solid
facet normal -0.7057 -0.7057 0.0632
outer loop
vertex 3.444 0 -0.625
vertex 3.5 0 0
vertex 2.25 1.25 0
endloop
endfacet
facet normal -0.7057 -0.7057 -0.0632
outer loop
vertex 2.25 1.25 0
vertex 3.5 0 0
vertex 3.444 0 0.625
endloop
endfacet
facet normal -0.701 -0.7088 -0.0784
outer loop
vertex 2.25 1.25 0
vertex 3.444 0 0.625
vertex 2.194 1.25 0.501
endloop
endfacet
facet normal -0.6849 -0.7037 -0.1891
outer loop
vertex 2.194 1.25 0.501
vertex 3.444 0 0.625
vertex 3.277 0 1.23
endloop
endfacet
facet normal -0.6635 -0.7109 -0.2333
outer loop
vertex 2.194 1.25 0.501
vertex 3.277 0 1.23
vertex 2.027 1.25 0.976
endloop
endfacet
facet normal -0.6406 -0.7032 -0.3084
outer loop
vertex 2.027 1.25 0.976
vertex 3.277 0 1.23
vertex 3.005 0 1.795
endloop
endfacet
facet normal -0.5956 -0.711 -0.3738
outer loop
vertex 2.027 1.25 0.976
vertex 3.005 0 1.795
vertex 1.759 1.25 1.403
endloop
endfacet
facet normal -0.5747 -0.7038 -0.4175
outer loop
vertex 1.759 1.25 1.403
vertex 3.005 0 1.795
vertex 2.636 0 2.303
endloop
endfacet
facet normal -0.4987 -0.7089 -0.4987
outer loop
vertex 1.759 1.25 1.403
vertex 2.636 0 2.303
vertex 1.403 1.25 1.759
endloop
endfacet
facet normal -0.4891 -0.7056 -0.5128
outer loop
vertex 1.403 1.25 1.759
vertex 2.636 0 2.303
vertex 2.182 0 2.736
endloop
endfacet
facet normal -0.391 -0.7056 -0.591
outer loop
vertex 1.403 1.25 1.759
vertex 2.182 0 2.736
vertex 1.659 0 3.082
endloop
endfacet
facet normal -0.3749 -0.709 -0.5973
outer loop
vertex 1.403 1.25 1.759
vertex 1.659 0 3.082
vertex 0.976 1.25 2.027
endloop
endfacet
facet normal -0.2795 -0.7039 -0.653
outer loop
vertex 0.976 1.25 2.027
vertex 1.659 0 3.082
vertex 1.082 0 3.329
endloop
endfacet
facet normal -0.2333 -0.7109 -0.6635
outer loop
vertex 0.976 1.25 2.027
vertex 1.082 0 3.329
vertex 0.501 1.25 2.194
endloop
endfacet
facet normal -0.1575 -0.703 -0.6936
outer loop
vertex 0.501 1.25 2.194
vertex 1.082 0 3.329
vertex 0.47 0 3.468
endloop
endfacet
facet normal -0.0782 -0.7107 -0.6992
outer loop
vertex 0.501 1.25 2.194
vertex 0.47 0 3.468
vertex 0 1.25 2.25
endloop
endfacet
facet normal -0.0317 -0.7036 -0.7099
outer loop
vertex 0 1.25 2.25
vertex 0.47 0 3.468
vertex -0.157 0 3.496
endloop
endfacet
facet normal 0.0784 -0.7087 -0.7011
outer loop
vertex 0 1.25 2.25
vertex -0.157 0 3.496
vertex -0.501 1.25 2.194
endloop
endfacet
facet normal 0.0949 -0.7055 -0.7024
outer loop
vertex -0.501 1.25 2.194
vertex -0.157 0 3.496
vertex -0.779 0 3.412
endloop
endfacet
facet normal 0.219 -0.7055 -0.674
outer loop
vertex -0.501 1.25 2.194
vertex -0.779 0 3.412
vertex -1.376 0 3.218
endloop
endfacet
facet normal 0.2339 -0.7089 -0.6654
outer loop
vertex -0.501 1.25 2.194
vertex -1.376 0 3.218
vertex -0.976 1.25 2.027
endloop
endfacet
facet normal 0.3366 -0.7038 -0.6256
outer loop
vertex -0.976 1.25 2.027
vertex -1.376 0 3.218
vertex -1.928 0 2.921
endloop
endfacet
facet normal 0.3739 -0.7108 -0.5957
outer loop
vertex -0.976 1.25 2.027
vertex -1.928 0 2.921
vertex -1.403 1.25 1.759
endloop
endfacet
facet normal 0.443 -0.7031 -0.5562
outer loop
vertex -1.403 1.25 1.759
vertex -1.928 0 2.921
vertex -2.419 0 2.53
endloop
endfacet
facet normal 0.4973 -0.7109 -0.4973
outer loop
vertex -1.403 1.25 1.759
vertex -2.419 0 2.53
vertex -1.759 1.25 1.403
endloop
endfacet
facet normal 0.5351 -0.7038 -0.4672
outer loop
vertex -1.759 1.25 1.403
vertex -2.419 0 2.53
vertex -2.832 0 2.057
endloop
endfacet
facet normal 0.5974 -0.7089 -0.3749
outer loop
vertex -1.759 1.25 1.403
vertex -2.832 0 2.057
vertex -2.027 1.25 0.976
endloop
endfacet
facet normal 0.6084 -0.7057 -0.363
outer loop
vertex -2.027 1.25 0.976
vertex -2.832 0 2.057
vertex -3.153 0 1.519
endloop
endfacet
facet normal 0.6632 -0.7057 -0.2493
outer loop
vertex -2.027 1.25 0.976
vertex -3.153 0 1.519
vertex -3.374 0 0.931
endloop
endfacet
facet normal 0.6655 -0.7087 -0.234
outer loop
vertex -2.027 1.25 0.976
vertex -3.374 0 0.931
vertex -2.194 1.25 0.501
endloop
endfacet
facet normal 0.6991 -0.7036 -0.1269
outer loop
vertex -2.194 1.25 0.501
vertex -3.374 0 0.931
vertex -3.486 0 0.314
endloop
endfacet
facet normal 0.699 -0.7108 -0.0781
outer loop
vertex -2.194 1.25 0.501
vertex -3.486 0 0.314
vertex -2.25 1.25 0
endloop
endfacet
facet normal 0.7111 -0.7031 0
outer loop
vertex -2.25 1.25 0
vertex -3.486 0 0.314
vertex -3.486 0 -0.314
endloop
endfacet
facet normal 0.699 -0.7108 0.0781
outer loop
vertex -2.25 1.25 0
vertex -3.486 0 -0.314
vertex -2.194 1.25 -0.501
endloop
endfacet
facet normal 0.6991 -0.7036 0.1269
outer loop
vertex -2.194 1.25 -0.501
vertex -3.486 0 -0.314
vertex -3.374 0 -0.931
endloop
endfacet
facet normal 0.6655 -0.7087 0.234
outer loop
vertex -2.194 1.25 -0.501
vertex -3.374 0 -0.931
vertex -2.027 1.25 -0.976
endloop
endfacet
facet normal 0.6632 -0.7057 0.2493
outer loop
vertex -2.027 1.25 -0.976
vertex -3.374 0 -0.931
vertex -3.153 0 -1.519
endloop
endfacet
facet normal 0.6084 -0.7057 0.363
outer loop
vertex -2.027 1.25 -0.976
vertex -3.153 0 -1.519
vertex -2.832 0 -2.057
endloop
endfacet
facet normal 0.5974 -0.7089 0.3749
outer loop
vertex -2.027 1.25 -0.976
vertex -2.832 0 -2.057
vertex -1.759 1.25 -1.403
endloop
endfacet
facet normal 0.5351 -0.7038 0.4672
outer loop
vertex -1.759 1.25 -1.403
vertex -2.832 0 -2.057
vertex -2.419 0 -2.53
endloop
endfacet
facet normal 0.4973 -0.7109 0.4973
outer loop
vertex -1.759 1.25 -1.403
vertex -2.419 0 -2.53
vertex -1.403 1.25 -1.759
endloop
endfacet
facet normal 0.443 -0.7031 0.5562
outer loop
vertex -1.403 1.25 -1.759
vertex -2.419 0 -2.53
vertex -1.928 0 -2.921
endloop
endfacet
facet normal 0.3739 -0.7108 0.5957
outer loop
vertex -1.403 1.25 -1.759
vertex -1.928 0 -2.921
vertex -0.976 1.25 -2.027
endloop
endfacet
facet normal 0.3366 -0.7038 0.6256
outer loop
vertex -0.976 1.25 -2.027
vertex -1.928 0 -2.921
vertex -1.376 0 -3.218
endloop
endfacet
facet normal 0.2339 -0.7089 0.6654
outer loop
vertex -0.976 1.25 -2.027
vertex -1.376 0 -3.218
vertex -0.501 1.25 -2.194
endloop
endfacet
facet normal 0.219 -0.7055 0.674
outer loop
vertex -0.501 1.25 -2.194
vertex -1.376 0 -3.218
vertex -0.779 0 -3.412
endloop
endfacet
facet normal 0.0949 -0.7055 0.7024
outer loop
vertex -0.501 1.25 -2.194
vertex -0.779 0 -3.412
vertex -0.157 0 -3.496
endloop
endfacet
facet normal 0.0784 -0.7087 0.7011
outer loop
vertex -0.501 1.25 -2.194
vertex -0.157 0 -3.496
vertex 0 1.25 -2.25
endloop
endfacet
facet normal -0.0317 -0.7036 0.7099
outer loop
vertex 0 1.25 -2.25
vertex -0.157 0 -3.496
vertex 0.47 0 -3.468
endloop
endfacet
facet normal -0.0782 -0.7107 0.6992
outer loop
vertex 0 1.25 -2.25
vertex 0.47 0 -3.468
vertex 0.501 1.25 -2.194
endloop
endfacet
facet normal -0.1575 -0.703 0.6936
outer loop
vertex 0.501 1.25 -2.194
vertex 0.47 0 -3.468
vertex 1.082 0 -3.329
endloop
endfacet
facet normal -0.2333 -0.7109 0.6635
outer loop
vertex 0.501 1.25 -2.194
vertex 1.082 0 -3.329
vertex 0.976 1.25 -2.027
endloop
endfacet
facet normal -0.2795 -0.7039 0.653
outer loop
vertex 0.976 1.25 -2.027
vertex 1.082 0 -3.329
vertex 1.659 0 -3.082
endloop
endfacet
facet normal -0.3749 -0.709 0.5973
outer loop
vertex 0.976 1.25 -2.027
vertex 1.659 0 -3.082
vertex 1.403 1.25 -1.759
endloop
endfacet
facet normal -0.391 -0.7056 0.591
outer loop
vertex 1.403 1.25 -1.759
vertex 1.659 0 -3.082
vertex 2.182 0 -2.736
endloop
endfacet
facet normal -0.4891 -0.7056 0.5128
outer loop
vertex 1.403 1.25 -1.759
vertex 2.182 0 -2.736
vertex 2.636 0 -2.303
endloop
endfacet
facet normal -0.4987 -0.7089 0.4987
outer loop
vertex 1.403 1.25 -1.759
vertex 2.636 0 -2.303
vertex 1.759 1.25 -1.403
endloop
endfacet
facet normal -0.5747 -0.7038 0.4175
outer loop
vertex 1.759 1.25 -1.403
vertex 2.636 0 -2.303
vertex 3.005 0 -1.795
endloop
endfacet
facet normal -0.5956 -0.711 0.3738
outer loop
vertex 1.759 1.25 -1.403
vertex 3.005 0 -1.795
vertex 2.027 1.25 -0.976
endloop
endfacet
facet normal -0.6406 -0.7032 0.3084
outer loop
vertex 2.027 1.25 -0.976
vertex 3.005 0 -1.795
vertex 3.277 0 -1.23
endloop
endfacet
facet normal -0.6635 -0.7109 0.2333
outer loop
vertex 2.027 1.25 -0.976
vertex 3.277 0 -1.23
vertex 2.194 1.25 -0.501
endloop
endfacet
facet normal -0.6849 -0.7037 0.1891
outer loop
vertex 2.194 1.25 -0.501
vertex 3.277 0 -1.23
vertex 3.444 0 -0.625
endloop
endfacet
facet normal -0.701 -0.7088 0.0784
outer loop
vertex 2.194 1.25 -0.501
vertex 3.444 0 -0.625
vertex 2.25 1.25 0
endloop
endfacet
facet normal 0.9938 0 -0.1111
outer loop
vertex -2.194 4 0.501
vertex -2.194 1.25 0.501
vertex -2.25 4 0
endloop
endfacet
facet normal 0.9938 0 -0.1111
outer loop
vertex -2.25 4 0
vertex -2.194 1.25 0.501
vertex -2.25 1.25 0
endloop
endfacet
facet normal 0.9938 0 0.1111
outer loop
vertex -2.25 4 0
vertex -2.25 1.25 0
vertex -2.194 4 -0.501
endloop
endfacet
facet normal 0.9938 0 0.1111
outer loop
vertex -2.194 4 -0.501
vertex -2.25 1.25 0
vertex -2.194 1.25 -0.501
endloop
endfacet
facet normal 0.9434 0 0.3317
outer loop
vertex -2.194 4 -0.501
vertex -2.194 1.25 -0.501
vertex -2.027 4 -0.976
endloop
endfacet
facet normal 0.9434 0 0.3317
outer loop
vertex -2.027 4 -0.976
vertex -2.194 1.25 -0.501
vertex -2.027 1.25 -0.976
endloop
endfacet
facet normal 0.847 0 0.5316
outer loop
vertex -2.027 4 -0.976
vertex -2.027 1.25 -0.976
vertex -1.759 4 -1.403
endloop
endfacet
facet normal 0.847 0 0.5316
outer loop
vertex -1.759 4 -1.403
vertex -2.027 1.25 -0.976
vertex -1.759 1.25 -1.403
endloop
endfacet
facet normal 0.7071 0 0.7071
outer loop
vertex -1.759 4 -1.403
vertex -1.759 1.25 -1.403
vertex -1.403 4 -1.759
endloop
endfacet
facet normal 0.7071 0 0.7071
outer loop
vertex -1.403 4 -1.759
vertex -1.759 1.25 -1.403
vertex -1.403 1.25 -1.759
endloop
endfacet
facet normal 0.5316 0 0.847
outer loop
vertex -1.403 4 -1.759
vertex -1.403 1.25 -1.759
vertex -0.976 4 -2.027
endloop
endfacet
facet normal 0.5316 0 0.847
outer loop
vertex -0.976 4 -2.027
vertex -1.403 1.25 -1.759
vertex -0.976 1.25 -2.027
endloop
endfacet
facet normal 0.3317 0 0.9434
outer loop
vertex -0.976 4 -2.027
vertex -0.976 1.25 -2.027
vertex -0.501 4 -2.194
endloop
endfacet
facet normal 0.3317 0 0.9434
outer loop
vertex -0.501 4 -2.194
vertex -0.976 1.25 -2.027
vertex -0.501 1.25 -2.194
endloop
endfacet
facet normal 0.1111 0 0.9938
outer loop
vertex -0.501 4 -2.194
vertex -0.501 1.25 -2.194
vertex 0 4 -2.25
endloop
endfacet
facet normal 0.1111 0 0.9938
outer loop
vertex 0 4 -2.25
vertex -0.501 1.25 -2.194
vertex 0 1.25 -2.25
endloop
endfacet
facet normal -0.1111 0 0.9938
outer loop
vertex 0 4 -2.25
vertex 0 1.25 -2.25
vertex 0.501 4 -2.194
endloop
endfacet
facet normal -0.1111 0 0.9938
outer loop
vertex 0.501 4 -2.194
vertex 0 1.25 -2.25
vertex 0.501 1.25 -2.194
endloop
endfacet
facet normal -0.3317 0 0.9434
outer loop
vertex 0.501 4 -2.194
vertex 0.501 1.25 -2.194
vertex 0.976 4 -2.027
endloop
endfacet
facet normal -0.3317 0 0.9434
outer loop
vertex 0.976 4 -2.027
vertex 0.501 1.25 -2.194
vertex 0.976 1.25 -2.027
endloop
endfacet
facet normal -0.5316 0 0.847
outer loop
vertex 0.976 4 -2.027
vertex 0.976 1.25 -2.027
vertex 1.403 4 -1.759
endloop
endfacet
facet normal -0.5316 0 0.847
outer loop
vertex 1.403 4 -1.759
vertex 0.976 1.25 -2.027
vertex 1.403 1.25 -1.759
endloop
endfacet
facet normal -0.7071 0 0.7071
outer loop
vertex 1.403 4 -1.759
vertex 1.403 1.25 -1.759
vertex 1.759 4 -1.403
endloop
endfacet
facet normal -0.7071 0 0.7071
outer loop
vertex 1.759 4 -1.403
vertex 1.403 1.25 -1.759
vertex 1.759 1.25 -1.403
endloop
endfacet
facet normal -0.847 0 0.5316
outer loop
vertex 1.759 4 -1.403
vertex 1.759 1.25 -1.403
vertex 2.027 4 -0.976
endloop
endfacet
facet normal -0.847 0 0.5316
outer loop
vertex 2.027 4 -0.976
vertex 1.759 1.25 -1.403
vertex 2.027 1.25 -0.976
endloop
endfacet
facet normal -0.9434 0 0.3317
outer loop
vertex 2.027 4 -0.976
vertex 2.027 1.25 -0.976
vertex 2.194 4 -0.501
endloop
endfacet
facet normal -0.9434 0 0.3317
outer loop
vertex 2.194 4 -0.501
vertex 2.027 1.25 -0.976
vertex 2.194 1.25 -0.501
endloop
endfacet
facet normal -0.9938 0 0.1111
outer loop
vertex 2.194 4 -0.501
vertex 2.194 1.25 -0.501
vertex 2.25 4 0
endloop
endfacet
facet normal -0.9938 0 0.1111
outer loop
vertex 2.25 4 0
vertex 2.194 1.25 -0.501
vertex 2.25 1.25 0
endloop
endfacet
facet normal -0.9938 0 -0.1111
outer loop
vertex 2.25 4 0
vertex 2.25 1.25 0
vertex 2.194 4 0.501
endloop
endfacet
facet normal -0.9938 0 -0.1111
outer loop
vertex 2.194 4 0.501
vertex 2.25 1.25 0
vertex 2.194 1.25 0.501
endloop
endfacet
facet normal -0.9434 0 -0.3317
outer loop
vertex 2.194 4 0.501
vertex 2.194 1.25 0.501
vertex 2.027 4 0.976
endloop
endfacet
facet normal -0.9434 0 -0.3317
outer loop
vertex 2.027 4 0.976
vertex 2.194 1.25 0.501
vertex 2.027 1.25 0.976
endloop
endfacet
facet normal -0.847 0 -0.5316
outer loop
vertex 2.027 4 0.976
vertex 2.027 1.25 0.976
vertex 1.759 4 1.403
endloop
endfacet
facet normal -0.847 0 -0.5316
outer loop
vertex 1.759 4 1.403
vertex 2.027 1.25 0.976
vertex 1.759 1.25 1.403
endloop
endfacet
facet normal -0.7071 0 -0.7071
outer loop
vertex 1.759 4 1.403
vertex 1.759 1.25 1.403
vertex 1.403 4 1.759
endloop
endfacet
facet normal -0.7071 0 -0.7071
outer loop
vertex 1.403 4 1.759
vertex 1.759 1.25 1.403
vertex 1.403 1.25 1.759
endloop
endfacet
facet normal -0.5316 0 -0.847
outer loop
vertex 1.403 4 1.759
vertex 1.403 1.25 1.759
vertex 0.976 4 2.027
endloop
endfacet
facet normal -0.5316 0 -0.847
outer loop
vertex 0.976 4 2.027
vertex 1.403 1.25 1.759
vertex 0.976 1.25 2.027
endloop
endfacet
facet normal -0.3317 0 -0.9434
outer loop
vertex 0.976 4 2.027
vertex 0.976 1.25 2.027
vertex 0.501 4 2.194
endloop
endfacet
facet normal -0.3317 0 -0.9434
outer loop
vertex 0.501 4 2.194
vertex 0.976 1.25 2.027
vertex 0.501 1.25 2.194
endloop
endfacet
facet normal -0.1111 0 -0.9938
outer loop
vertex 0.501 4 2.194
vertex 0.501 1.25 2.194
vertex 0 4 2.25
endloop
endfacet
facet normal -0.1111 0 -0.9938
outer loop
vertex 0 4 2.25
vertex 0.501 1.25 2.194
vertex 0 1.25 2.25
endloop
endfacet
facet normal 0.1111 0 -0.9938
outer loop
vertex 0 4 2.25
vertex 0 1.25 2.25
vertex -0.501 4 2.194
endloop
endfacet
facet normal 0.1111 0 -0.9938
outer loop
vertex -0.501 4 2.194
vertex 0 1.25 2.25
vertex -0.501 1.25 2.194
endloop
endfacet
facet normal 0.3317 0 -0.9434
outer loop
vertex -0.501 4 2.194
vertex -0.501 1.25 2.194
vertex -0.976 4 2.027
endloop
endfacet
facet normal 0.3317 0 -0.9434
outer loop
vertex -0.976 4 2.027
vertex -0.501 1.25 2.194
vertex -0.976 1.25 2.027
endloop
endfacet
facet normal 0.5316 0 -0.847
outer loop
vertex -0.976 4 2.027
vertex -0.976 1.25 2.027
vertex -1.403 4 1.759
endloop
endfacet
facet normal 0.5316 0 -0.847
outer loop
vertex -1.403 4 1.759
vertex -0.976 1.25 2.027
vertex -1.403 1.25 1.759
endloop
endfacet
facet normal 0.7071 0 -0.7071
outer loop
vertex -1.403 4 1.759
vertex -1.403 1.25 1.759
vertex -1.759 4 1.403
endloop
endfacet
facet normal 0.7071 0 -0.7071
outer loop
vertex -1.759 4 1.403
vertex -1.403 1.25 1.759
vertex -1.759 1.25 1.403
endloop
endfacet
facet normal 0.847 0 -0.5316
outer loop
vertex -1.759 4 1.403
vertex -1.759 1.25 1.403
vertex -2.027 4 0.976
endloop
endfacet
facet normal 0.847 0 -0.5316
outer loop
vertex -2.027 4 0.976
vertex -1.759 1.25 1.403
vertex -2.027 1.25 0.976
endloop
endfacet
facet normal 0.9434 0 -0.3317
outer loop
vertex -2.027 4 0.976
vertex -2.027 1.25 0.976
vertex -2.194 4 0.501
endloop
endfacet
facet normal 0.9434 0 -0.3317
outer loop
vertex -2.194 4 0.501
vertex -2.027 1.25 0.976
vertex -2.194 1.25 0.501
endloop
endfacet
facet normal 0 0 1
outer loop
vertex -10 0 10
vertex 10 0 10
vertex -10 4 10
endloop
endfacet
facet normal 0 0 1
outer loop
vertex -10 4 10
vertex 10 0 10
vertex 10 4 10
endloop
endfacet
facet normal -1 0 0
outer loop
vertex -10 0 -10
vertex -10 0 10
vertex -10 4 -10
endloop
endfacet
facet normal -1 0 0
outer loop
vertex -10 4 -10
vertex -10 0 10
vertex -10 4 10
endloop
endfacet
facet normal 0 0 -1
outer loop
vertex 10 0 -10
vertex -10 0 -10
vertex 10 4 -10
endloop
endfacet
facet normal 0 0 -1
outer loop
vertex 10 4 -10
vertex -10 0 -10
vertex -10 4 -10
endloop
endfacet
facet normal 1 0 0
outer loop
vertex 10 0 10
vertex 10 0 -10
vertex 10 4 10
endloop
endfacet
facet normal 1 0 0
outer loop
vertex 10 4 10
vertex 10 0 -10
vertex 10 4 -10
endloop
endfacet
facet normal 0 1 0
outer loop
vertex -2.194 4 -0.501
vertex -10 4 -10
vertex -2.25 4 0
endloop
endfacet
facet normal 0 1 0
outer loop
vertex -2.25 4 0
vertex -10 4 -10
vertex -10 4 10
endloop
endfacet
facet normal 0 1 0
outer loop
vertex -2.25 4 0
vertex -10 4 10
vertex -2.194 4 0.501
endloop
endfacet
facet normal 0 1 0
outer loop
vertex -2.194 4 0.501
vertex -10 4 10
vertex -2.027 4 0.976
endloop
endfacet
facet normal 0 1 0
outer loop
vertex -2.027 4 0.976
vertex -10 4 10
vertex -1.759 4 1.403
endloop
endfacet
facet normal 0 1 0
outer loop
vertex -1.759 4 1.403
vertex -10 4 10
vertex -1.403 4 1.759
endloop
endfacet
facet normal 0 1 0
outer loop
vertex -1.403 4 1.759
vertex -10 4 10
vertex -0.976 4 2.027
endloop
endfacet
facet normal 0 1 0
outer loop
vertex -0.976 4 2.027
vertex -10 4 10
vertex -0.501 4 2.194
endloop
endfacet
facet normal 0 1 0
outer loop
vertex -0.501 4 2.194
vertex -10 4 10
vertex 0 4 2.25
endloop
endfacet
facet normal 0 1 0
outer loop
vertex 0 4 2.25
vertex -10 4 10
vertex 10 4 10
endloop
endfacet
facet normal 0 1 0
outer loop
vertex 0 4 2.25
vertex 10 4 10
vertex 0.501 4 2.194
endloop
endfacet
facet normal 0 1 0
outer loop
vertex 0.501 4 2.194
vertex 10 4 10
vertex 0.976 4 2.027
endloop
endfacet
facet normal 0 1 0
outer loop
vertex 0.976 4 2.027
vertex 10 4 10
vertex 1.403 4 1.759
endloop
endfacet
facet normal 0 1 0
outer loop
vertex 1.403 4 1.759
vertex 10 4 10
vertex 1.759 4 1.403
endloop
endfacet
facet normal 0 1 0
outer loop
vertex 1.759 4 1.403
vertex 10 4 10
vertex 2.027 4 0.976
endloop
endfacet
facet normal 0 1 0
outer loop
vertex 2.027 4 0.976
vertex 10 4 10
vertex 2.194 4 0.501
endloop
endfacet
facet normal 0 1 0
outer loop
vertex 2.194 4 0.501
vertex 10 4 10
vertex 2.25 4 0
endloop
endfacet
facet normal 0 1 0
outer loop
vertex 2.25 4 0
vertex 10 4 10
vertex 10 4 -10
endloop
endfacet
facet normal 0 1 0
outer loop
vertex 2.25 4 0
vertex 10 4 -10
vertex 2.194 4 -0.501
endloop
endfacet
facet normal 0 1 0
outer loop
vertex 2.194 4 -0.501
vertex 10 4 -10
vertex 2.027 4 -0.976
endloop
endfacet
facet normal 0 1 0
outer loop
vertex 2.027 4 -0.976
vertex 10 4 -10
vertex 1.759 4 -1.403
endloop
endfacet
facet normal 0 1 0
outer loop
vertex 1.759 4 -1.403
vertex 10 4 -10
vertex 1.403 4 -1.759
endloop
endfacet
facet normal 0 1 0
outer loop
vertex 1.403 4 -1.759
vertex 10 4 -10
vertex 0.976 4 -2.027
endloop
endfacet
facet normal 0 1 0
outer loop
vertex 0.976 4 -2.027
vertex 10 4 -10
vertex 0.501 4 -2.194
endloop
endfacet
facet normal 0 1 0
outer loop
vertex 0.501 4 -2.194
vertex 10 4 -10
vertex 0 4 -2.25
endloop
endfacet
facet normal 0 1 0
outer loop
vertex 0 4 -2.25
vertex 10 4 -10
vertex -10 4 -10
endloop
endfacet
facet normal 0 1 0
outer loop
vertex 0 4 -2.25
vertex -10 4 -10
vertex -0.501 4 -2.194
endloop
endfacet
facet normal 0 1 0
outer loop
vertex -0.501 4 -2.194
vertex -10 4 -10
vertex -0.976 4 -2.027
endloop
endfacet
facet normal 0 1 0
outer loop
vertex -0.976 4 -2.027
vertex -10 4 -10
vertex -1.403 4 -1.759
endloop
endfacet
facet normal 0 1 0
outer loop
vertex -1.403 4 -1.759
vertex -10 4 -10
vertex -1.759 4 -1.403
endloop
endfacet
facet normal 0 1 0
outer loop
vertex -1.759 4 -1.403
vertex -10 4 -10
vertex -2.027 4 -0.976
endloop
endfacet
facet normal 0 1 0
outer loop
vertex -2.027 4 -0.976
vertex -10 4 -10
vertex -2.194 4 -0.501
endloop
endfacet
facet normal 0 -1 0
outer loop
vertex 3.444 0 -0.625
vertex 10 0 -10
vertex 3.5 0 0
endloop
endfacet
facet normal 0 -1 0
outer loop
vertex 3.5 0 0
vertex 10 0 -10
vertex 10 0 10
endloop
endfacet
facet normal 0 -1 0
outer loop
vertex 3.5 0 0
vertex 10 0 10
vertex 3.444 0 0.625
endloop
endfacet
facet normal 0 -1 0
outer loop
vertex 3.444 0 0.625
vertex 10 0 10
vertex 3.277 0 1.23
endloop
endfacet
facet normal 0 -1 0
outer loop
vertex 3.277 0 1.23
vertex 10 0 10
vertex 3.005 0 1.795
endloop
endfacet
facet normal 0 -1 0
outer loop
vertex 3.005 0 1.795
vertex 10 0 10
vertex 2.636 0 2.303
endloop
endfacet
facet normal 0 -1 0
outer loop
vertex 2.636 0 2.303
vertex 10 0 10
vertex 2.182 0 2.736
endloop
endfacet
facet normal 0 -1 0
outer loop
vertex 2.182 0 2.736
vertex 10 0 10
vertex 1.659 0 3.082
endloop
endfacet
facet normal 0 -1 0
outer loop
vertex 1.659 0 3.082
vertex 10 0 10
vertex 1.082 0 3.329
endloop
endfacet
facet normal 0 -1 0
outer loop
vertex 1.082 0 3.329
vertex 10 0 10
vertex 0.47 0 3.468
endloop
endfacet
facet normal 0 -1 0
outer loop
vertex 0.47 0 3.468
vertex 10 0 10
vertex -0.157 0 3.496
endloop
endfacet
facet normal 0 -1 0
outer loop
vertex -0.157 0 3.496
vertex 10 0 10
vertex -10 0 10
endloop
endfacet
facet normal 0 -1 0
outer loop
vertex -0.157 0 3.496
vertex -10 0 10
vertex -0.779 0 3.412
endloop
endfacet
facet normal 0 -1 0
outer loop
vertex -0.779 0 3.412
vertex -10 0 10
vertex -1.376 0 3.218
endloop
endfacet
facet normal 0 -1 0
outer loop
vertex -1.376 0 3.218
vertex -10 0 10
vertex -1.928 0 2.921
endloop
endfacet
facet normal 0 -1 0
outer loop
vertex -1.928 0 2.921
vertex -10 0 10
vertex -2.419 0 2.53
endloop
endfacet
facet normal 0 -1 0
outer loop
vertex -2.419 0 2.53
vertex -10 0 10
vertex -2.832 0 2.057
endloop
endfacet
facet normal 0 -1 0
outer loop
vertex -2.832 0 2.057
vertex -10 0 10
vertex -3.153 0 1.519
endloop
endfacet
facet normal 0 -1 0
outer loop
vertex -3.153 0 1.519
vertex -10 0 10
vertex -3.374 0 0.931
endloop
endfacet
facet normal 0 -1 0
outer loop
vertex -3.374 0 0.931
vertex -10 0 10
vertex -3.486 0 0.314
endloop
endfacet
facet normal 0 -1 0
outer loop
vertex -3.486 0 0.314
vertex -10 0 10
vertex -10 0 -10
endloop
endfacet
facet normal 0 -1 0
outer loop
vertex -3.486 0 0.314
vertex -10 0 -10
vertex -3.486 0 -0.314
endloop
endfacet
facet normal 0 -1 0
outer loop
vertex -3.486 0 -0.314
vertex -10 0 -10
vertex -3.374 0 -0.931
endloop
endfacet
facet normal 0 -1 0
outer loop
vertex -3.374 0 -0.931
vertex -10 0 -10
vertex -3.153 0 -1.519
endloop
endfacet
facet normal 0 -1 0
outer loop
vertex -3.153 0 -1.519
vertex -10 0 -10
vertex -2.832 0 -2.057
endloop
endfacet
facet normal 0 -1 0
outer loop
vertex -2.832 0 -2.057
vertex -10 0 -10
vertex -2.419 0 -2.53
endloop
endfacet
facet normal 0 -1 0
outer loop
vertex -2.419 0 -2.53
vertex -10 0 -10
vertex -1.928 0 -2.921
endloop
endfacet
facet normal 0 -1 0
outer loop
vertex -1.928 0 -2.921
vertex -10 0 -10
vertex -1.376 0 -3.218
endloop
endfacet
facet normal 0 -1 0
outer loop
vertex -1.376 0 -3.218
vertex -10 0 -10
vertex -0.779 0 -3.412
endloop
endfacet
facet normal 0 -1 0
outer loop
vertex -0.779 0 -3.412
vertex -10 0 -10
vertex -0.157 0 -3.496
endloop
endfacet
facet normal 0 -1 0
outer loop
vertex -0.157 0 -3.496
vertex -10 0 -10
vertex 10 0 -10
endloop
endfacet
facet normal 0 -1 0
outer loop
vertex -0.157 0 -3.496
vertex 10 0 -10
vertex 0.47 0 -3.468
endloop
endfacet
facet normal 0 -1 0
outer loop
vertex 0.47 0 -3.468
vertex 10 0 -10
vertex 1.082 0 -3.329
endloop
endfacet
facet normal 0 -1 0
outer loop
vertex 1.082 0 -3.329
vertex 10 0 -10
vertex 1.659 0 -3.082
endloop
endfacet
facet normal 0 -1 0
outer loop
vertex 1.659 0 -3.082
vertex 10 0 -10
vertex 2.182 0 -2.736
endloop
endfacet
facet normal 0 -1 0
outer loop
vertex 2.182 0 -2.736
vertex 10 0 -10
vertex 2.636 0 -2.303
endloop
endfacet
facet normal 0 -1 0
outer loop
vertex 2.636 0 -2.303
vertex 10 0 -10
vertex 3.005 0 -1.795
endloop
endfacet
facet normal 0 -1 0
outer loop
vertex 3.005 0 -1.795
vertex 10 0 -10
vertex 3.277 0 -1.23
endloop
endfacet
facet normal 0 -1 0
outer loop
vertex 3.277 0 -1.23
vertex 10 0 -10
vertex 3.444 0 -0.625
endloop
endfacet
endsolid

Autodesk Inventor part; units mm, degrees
ref_plane "YZ Plane" through (0, 0, 0) normal (1, 0, 0) x (0, 1, 0)
ref_plane "XZ Plane" through (0, 0, 0) normal (0, 1, 0) x (-1, 0, 0)
ref_plane "XY Plane" through (0, 0, 0) normal (0, 0, 1) x (1, 0, 0)
sketch "Schizzo1" plane through (0, 0, 0) normal (0, 1, 0) x (-1, 0, 0)
  circle A0 centre (0, 0) radius 1
  line L0 (10, 0) -> (10, -10)
  line L1 (10, -10) -> (0, -10)
  line L2 (-10, 0) -> (-10, -10)
  line L3 (-10, -10) -> (0, -10)
  line L4 (10, 0) -> (10, 10)
  line L5 (10, 10) -> (-10, 10)
  line L6 (-10, 10) -> (-10, 0)
  dimension "d2" = 2
  dimension "d12" = 10
  dimension "d13" = 10
  dimension "d14" = 10
  dimension "d15" = 10
extrude "Estrusione2" add sketch "Schizzo1" along normal blind 4
sketch "Schizzo3" plane through (0, 0, 0) normal (0, -1, 0) x (1, 0, 0)
  point P0 (0, 0)
  point P1 (0, 0)
hole "Foro2" at (0, 0, 0) direction (0, 1, 0) diameter 4.5 depth 8 countersink diameter 7 countersink angle 90
properties part number "Fissante"
